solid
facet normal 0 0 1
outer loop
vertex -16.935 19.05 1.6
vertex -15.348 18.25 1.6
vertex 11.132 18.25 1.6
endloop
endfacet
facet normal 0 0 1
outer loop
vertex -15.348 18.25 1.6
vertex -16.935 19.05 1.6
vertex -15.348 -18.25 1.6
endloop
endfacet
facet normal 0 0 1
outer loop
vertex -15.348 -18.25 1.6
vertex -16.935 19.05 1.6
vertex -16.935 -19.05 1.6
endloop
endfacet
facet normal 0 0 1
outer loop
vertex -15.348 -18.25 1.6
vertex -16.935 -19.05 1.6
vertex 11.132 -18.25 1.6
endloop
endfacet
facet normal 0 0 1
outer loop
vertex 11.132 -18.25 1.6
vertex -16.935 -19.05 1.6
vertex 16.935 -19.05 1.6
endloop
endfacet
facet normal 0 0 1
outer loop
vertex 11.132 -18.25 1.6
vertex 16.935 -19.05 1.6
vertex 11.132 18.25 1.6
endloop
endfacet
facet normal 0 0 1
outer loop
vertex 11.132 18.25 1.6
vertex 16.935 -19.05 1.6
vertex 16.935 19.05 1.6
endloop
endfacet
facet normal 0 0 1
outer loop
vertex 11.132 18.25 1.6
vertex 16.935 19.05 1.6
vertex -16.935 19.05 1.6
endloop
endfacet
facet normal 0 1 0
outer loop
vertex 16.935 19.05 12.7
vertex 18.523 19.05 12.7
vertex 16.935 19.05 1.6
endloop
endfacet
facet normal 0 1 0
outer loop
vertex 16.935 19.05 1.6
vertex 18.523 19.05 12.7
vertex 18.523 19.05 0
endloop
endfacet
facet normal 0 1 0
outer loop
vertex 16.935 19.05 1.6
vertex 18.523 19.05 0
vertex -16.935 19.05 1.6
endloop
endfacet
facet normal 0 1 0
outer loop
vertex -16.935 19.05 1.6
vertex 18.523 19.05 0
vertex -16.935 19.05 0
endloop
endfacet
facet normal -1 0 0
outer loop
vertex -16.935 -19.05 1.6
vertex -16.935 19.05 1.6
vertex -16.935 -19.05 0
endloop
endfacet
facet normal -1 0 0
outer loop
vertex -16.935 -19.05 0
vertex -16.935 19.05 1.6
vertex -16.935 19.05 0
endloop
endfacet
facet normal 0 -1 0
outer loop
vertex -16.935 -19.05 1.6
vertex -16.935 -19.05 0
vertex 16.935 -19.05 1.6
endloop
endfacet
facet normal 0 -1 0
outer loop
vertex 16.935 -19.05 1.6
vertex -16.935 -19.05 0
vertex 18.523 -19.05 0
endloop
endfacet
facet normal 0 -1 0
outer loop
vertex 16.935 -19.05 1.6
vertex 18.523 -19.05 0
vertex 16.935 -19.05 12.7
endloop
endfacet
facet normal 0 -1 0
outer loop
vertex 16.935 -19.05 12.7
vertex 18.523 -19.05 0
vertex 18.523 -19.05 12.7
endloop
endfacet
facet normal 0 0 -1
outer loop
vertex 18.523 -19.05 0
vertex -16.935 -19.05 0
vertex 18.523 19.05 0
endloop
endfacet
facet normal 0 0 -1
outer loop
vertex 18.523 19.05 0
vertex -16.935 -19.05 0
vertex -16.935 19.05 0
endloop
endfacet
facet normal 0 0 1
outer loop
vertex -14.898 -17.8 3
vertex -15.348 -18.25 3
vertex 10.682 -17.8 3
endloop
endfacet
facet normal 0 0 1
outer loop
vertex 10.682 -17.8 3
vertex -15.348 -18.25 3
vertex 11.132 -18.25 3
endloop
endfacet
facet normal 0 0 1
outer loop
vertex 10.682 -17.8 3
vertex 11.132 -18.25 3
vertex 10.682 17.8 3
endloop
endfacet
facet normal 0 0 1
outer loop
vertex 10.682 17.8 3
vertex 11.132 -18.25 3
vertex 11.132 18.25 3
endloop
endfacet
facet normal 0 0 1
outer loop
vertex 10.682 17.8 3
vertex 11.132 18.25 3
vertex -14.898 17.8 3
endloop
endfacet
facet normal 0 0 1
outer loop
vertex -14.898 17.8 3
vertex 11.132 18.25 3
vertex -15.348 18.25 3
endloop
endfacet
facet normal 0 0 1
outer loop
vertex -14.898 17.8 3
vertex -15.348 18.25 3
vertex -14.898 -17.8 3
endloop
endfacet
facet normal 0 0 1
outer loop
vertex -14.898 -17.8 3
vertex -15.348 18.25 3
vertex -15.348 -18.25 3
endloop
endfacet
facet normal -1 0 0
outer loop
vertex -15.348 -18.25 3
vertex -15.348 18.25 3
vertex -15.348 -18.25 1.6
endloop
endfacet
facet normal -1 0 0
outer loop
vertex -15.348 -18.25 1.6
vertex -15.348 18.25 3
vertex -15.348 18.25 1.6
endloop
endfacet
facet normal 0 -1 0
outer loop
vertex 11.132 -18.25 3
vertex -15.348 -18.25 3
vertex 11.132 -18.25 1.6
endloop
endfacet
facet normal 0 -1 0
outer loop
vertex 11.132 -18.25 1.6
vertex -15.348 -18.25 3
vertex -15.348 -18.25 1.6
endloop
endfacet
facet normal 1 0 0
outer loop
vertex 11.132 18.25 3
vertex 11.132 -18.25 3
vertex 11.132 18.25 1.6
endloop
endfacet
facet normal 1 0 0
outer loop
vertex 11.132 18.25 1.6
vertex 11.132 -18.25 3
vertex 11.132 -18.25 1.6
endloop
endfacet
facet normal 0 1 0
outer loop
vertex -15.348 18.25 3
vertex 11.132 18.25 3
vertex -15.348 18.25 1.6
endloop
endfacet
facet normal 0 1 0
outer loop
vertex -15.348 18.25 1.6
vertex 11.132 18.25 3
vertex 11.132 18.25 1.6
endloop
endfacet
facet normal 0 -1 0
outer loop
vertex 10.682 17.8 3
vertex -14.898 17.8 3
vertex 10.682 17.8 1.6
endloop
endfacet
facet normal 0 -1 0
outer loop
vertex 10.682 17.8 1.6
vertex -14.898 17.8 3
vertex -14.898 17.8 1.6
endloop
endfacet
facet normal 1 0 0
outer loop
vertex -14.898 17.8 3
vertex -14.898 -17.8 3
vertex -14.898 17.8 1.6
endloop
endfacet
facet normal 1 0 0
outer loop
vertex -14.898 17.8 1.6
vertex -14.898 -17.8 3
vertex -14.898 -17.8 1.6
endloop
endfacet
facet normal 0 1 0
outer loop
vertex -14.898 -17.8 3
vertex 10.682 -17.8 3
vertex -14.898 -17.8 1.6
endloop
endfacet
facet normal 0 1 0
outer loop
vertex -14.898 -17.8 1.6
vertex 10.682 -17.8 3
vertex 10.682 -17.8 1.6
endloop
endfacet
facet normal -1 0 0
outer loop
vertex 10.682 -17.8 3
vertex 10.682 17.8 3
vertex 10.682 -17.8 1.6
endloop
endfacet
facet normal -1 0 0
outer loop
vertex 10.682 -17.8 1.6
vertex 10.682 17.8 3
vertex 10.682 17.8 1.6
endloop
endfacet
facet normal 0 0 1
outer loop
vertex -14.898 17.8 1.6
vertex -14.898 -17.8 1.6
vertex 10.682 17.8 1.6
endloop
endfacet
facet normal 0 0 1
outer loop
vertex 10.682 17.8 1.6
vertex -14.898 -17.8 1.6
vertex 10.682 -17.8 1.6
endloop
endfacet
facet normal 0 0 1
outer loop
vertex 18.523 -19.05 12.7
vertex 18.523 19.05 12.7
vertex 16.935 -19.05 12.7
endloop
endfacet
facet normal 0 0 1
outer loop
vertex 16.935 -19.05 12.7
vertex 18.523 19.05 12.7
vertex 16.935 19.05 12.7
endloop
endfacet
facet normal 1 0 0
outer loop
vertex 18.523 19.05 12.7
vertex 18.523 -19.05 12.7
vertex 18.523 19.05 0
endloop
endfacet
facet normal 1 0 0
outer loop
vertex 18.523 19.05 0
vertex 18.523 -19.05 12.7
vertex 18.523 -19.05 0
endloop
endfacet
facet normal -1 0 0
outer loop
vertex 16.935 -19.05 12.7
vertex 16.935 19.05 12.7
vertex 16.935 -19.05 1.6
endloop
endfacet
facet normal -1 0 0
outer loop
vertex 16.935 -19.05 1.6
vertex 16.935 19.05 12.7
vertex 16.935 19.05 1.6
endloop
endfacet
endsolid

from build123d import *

# Parameters (mm, degrees)
SKETCH1_W           = 33.8709
SKETCH1_H           = 38.1
BOSS_EXTRUDE1_DEPTH = 1.599999848
SKETCH2_W           = 26.4795
SKETCH2_H           = 36.4998
SKETCH2_W_2         = 25.5795
SKETCH2_H_2         = 35.5998
BOSS_EXTRUDE2_DEPTH = 1.4
SKETCH3_W           = 12.7
SKETCH3_H           = 38.1
BOSS_EXTRUDE3_DEPTH = 1.5875


with BuildPart() as part:
    # Sketch1 → Boss-Extrude1 (new body)
    with BuildSketch(Plane.XY):
        Rectangle(SKETCH1_W, SKETCH1_H)
    extrude(amount=BOSS_EXTRUDE1_DEPTH)

    # Sketch2 → Boss-Extrude2 (add)
    with BuildSketch(Plane.XY.offset(1.599999848)):
        with Locations((-2.1082, 0)):
            Rectangle(SKETCH2_W, SKETCH2_H)
        with Locations((-2.1082, 0)):
            Rectangle(SKETCH2_W_2, SKETCH2_H_2, mode=Mode.SUBTRACT)
    extrude(amount=BOSS_EXTRUDE2_DEPTH)

    # Sketch3 → Boss-Extrude3 (add)
    with BuildSketch(Plane(origin=(16.93545, 0, 0), x_dir=(0, 0, -1), z_dir=(1, 0, 0))):
        with Locations((-6.35, 0)):
            Rectangle(SKETCH3_W, SKETCH3_H)
    extrude(amount=BOSS_EXTRUDE3_DEPTH)


solid = part.part
